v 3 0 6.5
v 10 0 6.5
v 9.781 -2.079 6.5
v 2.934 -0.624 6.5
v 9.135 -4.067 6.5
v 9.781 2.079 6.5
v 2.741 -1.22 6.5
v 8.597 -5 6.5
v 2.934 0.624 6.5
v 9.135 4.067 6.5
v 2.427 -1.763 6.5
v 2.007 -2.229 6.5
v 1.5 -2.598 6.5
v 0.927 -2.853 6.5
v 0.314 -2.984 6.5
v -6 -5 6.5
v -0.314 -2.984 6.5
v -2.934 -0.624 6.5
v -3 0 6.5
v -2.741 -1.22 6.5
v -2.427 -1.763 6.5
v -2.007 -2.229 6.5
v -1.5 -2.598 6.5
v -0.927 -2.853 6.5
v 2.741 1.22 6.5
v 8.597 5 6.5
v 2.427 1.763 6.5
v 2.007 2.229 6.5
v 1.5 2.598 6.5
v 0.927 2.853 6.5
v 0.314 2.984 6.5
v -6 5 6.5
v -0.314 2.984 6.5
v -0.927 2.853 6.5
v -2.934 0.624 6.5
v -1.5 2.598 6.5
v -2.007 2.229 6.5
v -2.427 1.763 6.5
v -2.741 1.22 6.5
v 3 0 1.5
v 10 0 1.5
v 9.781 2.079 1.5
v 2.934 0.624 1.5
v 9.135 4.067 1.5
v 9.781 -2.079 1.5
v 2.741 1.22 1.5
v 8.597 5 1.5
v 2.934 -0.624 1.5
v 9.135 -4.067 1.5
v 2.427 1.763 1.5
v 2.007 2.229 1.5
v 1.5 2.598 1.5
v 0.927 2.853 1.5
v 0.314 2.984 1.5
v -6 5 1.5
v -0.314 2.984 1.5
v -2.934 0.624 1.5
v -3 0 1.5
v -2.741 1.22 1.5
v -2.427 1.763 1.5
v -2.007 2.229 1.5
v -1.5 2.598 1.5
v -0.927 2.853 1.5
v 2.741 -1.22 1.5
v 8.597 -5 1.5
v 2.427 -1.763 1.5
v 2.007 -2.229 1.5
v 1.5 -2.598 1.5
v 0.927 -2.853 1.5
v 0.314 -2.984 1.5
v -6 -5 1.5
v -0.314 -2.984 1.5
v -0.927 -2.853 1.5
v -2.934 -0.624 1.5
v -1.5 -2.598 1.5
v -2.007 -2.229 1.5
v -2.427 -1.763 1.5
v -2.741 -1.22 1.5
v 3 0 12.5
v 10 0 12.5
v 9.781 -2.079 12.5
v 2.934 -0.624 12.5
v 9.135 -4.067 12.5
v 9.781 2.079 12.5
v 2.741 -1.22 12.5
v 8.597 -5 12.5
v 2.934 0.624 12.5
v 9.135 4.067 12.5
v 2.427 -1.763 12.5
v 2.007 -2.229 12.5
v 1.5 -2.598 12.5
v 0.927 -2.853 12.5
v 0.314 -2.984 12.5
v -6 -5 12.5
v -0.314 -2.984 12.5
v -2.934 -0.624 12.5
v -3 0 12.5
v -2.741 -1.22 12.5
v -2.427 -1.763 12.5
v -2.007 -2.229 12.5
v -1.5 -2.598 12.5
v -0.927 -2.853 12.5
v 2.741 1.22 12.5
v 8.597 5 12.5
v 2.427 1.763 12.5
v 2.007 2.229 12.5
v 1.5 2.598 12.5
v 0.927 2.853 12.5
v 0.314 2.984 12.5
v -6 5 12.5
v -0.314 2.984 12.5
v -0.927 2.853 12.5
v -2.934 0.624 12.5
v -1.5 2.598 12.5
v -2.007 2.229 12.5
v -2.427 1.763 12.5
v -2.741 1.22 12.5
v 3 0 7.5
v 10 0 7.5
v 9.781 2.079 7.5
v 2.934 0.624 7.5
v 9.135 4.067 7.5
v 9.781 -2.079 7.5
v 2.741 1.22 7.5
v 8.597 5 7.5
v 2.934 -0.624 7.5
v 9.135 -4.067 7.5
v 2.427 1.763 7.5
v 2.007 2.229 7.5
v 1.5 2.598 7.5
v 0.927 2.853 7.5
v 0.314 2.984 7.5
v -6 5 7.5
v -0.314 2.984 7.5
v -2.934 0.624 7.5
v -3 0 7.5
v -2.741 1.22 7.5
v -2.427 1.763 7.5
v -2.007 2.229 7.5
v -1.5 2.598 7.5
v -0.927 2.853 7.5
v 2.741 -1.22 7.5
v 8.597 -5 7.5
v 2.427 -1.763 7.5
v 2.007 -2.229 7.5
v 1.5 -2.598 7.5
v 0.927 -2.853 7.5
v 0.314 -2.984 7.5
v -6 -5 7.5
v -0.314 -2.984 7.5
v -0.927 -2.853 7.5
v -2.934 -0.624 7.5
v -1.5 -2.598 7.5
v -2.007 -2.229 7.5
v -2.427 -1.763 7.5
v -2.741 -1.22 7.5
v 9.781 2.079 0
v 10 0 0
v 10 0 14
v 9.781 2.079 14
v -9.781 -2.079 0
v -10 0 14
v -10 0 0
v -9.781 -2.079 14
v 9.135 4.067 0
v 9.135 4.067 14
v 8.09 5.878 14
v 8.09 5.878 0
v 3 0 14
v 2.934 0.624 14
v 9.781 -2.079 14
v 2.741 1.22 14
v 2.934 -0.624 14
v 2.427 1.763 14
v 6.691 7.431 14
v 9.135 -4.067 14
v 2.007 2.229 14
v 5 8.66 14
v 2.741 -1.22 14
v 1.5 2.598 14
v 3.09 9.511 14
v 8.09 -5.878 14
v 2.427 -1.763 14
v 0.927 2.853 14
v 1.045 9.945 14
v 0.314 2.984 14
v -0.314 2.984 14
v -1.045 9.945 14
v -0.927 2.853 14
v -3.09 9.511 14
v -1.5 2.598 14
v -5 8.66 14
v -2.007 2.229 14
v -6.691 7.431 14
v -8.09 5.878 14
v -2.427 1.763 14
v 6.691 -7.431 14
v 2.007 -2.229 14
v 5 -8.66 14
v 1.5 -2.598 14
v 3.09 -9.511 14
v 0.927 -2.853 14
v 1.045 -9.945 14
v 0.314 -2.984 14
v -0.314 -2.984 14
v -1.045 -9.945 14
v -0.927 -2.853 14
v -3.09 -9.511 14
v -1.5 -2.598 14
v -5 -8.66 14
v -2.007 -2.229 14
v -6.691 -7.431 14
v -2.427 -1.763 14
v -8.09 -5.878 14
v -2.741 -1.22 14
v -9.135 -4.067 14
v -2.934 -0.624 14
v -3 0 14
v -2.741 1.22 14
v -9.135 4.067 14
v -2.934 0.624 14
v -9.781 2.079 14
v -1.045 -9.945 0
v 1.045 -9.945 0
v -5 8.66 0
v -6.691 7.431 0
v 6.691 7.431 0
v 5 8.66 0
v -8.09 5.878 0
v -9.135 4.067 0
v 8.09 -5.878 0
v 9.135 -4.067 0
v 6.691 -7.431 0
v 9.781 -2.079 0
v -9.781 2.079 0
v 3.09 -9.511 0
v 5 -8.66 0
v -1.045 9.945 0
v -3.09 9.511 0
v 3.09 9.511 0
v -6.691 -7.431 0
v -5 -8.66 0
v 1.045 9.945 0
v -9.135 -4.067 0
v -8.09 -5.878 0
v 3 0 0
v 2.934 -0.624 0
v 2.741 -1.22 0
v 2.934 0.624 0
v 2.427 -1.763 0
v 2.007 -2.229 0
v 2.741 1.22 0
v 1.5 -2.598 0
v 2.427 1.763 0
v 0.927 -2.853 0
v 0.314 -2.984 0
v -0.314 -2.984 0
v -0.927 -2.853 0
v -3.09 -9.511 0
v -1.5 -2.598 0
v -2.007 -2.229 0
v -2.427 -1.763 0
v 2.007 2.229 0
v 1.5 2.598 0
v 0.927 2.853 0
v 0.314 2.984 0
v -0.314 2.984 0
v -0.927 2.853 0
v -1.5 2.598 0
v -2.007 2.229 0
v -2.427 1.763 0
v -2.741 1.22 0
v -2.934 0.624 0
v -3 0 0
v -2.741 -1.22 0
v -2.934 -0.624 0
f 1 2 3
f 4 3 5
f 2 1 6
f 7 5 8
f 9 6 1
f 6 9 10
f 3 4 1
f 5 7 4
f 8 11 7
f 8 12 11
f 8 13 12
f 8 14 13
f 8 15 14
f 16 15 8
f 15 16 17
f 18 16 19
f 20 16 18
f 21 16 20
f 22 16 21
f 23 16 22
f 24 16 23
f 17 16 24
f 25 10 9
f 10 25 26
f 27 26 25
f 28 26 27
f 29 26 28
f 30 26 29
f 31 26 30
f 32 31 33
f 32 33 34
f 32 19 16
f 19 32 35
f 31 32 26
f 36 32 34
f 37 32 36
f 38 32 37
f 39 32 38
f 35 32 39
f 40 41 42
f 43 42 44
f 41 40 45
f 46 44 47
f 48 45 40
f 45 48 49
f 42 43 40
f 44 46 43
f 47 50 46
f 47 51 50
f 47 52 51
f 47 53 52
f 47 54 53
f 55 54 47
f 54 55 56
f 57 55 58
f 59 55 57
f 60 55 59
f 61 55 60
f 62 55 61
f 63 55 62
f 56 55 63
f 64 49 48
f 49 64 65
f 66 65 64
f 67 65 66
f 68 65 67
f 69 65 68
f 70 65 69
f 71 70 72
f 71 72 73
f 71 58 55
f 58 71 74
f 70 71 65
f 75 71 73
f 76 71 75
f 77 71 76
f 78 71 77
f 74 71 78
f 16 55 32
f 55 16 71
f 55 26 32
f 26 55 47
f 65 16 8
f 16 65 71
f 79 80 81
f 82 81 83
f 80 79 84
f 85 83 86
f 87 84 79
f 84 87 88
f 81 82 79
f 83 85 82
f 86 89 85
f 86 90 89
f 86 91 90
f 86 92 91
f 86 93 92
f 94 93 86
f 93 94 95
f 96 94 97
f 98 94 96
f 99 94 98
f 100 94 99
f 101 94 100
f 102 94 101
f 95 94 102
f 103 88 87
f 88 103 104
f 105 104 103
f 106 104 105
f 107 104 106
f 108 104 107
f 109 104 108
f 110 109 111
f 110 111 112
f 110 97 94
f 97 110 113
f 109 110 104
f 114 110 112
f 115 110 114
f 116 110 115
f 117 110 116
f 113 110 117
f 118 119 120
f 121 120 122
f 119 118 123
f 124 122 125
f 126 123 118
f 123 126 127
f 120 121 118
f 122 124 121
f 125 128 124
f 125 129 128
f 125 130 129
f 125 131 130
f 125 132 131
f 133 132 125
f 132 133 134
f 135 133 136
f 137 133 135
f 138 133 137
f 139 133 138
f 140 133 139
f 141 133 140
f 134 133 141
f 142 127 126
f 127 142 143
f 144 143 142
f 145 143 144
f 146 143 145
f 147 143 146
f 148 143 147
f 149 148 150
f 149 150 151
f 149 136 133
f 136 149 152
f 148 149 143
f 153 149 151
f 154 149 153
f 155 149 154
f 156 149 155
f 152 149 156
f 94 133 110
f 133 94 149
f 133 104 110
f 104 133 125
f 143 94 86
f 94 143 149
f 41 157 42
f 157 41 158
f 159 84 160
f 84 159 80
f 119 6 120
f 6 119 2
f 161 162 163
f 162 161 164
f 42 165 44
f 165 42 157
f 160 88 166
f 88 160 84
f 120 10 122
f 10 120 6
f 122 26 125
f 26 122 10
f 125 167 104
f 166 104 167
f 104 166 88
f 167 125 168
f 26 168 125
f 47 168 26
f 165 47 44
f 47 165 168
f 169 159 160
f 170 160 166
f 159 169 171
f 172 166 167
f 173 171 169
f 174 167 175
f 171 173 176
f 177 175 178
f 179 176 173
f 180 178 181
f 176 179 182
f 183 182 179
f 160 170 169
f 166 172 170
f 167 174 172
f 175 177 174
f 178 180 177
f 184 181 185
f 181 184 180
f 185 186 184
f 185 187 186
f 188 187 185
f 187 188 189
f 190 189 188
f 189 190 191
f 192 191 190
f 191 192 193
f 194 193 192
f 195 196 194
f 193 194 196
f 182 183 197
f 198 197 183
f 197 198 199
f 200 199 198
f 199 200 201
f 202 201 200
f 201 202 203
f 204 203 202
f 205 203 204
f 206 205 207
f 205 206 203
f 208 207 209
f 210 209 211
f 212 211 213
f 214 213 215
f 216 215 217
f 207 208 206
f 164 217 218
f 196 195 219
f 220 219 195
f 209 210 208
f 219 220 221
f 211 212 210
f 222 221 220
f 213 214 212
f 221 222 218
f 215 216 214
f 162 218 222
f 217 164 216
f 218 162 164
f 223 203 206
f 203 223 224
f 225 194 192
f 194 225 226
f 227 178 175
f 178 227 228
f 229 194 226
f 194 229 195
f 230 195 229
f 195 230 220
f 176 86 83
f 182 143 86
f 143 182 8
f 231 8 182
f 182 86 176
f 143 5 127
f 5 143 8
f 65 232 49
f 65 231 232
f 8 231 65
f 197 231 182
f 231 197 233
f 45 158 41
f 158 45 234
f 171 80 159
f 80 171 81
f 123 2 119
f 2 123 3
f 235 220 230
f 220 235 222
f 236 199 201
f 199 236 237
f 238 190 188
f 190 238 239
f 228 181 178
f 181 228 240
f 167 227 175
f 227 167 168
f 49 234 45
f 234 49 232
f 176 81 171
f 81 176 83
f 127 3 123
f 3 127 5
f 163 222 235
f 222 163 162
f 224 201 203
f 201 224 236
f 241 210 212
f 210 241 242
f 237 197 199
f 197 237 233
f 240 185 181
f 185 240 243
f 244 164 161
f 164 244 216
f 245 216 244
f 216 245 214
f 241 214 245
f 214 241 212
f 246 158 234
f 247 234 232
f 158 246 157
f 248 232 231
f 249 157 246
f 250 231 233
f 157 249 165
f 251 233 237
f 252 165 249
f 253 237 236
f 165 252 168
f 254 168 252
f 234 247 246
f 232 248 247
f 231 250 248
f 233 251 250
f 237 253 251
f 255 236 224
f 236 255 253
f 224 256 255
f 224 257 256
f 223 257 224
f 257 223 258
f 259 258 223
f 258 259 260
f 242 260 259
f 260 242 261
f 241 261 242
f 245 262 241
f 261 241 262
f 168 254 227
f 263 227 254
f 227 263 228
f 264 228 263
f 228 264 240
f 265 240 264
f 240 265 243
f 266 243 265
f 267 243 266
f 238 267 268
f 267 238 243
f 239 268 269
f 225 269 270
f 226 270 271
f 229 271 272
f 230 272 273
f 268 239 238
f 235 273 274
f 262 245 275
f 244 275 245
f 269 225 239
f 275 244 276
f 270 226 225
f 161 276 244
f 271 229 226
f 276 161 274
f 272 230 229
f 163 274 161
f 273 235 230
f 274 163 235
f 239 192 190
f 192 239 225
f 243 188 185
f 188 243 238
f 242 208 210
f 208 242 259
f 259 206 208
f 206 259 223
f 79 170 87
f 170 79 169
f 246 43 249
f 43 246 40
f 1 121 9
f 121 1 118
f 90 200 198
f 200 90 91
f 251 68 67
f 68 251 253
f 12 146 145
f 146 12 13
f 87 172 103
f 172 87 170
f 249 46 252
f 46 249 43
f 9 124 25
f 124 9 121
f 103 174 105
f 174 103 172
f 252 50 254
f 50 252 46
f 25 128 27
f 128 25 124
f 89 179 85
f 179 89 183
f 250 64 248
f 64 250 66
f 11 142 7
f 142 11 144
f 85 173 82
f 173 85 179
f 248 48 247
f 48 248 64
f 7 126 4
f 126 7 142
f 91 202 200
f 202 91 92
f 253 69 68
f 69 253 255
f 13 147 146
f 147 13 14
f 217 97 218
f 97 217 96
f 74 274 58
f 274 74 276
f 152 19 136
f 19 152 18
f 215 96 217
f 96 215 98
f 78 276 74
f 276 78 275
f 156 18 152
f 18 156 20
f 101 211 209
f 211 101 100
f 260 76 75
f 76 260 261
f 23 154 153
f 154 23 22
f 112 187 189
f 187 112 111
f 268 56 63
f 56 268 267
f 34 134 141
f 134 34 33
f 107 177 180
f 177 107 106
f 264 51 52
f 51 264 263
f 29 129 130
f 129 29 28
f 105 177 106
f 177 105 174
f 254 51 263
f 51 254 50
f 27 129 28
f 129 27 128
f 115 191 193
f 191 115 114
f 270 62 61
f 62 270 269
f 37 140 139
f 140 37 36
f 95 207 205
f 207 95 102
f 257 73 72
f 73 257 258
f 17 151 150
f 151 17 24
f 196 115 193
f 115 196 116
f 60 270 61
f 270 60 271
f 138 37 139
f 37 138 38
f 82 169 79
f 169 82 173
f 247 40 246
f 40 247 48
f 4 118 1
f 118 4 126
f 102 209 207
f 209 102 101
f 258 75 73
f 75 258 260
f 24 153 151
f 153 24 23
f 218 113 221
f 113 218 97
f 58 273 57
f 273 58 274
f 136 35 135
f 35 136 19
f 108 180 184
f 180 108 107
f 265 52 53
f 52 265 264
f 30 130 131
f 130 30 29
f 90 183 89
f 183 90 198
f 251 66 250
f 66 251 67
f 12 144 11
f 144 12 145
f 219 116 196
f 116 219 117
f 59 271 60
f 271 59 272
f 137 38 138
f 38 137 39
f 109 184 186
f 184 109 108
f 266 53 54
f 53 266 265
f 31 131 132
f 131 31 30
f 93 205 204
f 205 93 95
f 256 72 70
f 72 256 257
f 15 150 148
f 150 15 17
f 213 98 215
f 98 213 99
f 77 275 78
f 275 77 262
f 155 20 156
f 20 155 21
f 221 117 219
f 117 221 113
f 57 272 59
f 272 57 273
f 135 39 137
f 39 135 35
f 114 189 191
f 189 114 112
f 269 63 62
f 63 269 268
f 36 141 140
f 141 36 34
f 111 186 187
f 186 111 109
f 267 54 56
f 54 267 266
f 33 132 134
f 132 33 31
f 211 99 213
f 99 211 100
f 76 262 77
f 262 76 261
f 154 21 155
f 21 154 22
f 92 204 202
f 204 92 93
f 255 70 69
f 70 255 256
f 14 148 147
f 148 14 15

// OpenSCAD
difference(){
	{
		cylinder(14,10,10,$fn=30);
		translate([-6,-5,4.5]){

				translate([0,0,-3])
				cube([22,10,5]);

				translate([0,0,3])
					cube([22,10,5]);
		}
	}
	translate([0,0,-1])
		cylinder(20,3,3,$fn=30);

}
